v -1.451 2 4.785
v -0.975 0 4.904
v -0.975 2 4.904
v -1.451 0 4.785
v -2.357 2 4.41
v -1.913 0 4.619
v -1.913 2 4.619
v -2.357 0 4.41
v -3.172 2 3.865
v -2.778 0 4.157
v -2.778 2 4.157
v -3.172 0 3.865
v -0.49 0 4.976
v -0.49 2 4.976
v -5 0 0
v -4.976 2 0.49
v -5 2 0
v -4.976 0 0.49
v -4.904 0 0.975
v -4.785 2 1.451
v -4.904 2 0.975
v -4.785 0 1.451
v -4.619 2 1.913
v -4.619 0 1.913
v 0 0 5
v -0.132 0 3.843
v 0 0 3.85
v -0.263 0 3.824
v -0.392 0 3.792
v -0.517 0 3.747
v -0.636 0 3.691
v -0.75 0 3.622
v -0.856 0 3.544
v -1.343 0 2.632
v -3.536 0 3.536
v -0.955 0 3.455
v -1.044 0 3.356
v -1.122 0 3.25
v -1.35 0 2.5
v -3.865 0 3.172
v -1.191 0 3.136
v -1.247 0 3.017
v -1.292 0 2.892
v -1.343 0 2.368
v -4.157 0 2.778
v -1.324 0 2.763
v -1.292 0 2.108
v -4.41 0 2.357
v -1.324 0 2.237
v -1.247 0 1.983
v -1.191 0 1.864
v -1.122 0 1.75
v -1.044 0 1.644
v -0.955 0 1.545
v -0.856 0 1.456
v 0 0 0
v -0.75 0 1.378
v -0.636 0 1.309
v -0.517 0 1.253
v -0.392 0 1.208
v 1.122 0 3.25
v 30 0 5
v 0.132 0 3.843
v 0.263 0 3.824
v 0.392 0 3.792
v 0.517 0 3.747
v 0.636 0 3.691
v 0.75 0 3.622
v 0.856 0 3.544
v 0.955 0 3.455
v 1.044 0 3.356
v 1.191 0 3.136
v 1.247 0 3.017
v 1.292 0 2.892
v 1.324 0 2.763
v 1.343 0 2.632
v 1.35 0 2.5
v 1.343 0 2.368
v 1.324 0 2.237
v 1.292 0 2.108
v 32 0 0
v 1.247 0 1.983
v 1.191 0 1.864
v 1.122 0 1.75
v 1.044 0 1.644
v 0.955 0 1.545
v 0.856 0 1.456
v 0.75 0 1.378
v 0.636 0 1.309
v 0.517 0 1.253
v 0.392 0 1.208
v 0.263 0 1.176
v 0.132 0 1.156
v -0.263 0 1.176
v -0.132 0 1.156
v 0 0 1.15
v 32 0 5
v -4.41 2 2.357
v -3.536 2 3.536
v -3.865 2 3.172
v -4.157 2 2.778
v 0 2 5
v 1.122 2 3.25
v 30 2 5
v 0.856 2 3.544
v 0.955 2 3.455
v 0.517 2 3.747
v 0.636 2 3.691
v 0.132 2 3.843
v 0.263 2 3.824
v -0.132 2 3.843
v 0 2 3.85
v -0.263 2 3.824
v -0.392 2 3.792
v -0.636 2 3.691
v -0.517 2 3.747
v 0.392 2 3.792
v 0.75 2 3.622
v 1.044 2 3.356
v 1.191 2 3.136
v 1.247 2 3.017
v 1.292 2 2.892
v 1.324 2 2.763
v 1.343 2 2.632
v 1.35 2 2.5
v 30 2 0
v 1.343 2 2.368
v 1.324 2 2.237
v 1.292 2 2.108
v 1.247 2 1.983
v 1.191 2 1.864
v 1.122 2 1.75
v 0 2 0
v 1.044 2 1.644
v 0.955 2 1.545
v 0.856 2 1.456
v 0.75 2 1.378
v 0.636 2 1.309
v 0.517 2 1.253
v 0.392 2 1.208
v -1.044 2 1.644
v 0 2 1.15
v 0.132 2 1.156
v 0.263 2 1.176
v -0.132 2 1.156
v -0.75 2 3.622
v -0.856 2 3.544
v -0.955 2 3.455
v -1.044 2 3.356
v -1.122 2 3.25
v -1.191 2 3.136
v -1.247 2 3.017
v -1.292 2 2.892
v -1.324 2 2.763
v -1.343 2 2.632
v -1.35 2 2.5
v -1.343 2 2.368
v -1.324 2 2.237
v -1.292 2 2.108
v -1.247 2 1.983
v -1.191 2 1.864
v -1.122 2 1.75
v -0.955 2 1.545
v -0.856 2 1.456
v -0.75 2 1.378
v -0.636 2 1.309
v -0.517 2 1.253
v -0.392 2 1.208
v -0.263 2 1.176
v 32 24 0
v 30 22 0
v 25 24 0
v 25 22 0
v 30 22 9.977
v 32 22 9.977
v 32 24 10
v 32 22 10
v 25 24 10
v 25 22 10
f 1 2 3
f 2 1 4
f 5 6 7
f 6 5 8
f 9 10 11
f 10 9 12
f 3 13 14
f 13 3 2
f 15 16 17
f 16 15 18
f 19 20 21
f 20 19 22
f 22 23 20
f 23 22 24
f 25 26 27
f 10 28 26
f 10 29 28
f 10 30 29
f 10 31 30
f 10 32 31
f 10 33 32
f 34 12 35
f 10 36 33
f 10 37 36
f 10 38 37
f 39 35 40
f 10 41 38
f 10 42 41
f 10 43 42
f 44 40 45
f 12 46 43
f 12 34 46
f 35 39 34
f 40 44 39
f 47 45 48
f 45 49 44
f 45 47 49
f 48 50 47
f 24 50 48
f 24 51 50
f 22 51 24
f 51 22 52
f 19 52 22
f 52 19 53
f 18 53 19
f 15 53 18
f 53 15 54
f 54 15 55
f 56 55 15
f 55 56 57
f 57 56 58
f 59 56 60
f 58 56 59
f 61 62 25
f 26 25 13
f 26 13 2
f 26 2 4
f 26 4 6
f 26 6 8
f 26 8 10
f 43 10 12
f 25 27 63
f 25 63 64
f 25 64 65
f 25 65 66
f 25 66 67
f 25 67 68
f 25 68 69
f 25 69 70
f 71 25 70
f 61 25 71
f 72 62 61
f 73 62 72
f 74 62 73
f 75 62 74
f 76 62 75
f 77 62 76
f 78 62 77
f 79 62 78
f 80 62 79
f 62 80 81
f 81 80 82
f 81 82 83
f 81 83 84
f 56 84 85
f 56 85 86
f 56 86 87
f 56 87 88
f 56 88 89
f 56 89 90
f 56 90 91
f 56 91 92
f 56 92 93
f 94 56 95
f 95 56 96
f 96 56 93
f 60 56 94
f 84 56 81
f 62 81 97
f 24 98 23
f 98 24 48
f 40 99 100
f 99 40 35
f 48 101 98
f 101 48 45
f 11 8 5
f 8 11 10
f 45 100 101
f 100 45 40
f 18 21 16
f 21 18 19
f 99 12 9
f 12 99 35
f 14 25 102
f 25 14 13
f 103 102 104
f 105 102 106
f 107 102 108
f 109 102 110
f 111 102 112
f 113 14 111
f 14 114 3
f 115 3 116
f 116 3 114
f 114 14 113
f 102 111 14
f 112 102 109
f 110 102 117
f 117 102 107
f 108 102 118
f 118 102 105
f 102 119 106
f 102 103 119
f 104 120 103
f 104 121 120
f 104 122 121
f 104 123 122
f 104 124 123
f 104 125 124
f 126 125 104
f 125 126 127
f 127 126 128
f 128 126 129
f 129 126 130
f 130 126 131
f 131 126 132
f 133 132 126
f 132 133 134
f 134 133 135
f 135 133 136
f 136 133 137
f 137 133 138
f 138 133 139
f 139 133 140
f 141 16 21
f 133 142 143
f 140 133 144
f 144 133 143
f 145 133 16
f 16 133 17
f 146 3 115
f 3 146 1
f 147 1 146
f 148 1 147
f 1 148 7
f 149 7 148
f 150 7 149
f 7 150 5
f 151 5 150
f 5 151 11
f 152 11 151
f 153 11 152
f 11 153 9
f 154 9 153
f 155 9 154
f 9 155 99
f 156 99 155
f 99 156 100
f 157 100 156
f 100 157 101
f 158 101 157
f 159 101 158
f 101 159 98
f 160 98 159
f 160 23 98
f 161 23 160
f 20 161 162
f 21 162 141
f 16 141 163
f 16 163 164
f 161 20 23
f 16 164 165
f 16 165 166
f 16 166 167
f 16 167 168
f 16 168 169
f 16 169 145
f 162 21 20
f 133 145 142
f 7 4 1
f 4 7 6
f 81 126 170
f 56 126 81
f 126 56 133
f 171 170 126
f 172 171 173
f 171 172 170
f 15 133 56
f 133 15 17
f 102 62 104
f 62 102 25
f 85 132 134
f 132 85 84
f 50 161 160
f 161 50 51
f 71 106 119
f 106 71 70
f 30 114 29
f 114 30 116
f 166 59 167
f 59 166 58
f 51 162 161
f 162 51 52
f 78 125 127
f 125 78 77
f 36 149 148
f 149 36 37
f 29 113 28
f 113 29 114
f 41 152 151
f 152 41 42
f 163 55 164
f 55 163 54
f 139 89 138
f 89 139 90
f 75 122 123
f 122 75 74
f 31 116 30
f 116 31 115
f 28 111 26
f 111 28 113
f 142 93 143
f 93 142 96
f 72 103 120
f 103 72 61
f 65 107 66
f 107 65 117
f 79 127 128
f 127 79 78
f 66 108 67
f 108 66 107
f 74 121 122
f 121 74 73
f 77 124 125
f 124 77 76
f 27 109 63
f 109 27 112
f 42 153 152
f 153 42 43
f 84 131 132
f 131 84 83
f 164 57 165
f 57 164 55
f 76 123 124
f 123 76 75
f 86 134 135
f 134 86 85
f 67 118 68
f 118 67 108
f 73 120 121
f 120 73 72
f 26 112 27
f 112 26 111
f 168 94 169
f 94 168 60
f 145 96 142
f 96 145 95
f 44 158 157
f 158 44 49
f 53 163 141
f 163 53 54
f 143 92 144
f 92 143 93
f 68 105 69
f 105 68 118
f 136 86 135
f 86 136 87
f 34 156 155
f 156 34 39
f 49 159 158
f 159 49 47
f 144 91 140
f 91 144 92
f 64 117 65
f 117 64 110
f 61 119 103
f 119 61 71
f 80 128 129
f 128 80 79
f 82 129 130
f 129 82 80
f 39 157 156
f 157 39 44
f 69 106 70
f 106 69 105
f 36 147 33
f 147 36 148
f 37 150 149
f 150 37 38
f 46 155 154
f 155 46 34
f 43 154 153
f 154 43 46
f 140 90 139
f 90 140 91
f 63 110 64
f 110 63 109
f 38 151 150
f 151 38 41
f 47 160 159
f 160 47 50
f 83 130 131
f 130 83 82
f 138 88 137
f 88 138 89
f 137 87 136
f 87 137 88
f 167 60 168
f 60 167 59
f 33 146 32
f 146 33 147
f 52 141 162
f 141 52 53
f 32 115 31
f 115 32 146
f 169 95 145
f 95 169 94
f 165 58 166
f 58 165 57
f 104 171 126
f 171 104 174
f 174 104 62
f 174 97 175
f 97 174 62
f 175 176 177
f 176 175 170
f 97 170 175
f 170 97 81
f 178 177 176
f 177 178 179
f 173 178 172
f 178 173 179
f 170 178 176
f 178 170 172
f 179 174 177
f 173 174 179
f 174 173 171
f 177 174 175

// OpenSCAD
// VHS-cleaning: Take-Up reel roller clamp
// Repo: https://github.com/hornc/VHS-cleaning
// Author: hornc, 2026
// Version: v0.1
// License: CC BY-SA 4.0

$fn = 64;
base_h = 2;
hole_d = 2.7;
e = 0.1;

module sloped_box(w, l, h1, h2) {  
    rotate([90, 0, 90])
    linear_extrude(height = w) {
        polygon(points=[
            [0, 0],
            [l, 0],
            [l, h2],
            [0, h1]
        ]);
    }
}


// bar with hole
difference(){
    group(){
        cube([30 + e, base_h, 5]);
        difference(){
            rotate([-90, 0, 0])
                cylinder(base_h, d=10);  // curved end
            translate([0, 0, -7.5])
                cube(15, center=true);
        }
    }
    // Hole
    translate([0, 0, 5/2])
        rotate([90, 0, 0])
            color("red")
                cylinder(10, d=hole_d, center = true);
}

color("green")
translate([30, 0, 0])
    //cube([base_h, 20 + base_h, 10]);
    sloped_box(base_h, 20 + base_h + e, 5, 10);

under_len = 5;

translate([30 - under_len, 20 + base_h, 0])
    cube([under_len + base_h, base_h, 10]);
